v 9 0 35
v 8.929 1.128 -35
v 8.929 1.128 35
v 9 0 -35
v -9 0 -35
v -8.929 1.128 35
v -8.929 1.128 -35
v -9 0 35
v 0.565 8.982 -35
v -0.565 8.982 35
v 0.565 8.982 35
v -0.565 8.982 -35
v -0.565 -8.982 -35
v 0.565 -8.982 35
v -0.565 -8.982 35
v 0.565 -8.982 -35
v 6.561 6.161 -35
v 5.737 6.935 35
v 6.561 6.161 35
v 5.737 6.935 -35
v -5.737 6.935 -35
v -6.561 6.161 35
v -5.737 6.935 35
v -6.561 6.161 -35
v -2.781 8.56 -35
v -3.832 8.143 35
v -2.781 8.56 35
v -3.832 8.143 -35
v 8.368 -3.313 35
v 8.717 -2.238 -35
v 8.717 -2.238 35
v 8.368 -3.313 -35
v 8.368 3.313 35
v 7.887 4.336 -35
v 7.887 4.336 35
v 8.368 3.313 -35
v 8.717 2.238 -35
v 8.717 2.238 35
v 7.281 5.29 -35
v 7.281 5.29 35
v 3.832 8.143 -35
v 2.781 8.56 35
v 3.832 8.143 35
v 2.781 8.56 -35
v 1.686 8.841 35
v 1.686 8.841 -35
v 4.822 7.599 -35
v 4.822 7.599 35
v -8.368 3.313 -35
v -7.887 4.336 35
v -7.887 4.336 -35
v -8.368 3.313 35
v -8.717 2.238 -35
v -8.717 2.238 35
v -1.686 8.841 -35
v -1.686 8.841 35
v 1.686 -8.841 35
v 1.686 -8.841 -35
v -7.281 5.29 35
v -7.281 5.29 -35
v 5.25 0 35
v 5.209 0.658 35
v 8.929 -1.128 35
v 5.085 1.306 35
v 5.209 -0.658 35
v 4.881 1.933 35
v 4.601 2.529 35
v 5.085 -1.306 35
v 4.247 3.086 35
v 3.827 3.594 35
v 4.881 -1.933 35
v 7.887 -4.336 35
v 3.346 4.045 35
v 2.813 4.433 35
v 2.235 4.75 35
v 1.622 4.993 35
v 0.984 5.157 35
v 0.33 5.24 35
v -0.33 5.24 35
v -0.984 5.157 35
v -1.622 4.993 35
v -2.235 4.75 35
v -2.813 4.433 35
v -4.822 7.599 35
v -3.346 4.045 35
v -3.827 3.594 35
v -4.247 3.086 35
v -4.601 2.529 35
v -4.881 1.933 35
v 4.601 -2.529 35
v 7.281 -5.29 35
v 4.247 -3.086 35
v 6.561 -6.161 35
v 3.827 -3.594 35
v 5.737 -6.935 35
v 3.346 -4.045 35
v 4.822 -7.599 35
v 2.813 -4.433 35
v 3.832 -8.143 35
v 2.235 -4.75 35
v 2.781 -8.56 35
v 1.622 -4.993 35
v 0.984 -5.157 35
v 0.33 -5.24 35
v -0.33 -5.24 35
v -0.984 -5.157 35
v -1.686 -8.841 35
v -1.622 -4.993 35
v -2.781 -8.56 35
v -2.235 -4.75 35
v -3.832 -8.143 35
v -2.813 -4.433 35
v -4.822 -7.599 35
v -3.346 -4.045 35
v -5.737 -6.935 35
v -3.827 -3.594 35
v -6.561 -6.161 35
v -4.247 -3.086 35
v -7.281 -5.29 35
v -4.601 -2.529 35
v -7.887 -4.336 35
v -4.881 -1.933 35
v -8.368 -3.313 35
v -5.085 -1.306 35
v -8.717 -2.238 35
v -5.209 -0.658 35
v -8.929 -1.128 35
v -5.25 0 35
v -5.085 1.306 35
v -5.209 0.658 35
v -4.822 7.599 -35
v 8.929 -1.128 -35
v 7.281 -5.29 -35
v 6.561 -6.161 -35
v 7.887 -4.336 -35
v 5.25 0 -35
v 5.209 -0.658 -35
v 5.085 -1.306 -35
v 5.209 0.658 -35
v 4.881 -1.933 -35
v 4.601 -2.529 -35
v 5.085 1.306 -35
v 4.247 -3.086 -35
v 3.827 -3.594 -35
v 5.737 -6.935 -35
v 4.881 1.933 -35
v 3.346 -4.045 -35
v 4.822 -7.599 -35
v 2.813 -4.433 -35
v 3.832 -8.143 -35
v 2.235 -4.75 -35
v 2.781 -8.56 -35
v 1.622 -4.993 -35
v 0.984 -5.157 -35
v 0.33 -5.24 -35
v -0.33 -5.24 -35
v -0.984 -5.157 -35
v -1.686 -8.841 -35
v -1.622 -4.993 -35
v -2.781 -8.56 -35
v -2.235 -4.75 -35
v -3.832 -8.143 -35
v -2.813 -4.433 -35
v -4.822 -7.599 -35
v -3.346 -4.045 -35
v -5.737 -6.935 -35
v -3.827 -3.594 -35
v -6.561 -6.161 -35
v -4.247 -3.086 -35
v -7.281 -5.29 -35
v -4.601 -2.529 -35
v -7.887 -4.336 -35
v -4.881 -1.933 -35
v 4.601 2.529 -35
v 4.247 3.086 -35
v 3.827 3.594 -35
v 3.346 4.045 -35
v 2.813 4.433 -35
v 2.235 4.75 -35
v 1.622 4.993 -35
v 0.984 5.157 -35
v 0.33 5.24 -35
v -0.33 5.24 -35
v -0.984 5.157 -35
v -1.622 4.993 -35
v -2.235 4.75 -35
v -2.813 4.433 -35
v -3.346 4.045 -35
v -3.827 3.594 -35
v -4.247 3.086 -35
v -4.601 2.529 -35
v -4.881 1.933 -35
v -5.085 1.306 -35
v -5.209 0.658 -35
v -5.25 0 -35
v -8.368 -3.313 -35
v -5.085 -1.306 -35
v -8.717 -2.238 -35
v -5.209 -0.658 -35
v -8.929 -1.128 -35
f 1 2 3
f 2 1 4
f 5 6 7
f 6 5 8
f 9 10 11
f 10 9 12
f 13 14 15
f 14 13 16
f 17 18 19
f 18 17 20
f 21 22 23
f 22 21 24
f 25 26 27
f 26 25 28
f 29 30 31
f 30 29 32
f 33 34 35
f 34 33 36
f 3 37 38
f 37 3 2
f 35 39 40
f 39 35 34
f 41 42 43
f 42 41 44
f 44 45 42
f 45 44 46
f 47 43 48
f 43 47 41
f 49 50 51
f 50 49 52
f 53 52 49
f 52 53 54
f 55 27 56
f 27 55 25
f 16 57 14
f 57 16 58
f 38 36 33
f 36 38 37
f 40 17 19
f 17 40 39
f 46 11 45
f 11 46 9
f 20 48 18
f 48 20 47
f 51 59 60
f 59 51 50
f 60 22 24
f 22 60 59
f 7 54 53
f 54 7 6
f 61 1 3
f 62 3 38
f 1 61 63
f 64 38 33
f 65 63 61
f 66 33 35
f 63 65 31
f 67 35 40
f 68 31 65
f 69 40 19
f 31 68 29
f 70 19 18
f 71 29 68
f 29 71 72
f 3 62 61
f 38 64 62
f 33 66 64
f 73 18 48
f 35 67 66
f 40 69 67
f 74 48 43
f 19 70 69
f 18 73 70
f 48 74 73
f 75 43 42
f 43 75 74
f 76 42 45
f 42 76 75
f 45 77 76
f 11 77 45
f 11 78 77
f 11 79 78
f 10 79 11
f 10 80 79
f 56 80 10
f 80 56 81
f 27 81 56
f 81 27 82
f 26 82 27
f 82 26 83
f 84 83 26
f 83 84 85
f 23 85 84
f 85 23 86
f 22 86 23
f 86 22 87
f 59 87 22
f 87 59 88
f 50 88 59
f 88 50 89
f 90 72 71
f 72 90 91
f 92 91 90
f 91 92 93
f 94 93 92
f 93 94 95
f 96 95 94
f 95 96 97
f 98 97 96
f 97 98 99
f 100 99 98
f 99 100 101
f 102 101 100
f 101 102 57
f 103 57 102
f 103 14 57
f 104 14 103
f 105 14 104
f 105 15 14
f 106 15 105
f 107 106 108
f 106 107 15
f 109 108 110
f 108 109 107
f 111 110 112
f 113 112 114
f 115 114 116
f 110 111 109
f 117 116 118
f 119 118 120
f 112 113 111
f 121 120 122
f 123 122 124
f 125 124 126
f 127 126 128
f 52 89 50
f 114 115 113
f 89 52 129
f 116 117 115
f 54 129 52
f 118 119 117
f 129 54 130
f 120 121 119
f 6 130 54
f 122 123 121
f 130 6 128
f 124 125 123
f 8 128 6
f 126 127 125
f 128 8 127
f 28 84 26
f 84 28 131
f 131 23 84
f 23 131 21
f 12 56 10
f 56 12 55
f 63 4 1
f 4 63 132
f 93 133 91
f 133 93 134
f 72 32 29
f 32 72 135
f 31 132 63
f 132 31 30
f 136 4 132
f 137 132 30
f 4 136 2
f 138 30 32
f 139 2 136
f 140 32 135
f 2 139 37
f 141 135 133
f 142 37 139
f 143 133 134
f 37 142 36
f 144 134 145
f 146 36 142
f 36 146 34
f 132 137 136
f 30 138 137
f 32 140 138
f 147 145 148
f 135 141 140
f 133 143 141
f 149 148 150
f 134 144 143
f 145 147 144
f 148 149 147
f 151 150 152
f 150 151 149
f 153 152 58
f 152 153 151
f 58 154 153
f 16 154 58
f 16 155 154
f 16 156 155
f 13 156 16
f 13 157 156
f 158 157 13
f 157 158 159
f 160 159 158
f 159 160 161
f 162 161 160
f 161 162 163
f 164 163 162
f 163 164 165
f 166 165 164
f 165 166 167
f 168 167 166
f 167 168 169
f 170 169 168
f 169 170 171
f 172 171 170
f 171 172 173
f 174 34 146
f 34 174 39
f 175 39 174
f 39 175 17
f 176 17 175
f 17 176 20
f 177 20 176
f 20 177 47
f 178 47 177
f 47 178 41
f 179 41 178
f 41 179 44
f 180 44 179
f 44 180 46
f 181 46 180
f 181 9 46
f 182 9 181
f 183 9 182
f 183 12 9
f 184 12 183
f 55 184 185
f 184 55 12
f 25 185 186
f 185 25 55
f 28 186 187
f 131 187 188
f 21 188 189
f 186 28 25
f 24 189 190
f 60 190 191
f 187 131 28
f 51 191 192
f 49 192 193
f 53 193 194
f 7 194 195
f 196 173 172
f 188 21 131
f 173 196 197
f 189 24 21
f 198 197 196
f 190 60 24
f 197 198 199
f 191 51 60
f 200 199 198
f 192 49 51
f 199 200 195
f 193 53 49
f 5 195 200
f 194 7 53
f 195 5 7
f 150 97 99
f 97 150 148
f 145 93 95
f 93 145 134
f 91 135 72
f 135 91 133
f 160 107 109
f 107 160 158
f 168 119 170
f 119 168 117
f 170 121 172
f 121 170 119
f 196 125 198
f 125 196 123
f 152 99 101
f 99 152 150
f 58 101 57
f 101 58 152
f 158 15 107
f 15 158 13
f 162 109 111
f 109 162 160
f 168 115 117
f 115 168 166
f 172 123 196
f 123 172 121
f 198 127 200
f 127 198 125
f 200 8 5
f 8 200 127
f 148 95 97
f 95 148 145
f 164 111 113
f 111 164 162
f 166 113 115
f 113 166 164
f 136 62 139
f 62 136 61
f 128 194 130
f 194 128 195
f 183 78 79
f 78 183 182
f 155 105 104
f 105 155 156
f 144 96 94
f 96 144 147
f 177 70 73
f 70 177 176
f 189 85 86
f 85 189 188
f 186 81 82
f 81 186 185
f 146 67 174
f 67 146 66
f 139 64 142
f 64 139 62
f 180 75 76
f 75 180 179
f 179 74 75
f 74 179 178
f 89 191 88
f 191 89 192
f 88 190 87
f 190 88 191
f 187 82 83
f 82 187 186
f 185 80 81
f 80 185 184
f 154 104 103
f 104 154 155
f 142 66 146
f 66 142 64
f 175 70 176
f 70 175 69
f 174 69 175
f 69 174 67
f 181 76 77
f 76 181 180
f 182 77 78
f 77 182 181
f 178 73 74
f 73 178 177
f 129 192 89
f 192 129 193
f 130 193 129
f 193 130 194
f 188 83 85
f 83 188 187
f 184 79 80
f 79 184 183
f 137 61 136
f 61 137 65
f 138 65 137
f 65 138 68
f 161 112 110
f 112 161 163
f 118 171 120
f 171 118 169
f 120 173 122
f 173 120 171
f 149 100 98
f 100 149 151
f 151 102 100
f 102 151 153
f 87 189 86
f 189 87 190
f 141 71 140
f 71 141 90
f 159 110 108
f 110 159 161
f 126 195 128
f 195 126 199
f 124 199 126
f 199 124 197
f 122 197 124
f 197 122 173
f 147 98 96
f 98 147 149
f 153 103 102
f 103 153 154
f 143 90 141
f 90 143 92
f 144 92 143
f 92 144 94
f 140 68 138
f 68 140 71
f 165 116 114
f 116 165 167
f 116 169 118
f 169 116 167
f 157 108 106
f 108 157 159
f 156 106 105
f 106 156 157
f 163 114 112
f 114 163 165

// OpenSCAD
$fn = 50;


difference() {
	union() {
		translate(v = [0, 0, -35.0000000000]) {
			cylinder(h = 70, r = 9.0000000000);
		}
	}
	union() {
		translate(v = [0, 0, -100.0000000000]) {
			cylinder(h = 200, r = 5.2500000000);
		}
	}
}
